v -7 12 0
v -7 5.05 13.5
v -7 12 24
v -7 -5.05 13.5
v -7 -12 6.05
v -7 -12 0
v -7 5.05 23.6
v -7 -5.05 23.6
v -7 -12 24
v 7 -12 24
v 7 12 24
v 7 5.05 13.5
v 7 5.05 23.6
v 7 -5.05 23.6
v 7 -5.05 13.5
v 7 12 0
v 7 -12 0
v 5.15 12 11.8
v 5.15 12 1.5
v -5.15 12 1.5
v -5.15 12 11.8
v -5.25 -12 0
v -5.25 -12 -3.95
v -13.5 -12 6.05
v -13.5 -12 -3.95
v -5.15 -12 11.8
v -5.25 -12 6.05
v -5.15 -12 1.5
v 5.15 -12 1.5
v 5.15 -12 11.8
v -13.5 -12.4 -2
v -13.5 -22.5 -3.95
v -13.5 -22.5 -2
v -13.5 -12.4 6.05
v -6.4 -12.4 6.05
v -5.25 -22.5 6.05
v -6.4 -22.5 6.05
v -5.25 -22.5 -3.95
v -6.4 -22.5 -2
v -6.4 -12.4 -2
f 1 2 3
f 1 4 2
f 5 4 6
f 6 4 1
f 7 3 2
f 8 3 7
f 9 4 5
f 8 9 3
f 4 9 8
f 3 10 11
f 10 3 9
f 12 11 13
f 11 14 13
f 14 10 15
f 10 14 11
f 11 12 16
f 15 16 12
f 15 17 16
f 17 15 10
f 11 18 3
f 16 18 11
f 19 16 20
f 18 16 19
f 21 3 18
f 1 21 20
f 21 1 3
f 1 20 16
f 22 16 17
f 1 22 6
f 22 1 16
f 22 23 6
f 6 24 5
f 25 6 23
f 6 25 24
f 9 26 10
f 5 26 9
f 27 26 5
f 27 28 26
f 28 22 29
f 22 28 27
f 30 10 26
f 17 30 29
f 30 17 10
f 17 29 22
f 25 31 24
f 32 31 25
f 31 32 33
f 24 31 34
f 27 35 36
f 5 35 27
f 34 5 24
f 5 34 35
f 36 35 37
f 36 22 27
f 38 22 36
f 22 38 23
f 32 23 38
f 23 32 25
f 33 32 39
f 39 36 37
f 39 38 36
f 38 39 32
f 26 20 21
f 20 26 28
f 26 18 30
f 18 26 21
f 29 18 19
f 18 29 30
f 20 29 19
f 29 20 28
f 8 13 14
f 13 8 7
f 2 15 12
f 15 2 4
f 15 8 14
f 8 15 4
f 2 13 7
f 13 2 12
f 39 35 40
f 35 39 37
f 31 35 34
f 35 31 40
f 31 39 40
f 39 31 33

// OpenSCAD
/* ==========================================================================
   PROJETO CAMPO TÁTIL - CARRINHO LATERAL Y (METADE DIREITA DE IMPRESSÃO)
   Berço da cremalheira em U totalmente aberto para cima e para a esquerda (centro do campo)
   Pronto para fatiar direto na Bambu Lab A1 Mini (Suporte Zero)
   ========================================================================== */

$fn = 60;

module carrinho_lateral_y_direito() {
    desloc_x_centro_braco = -9.375;
    
    difference() {
        union() {
            // Corpo principal original de 24mm em Y (spans Y = -12 a 12mm)
            translate([0, 0, 12]) 
                cube([14, 24, 24], center=true);
            
            // Prolongador interno com altura estendida para baixo em Z (total 10.0mm de altura)
            // Z de -3.95mm a 6.05mm relativo. Centralizado em Y = -17.25mm
            translate([desloc_x_centro_braco, -17.25, 1.05])
                cube([8.25, 10.5, 10.0], center=true);
                
            // Nervura triangular de reforço em X-Y (Mão-Francesa lateral estendida em Z)
            translate([0, 0, 1.05]) {
                linear_extrude(height = 10.0, center = true) {
                    polygon(points = [
                        [-7.0, -12.0],
                        [-7.0, -17.5],
                        [-13.5, -17.5]
                    ]);
                }
            }
        }
        
        // Canal passante interno para o eixo quadrado Y (10.3mm - Spans X = -5.15 a 5.15)
        translate([0, 0, 1.5 + 10.3/2]) 
            cube([10.3, 26, 10.3], center=true);
            
        // Eixo Único da Ponte X (Y = 0mm)
        translate([0, 0, 13.5 + 10.1/2]) 
            cube([16, 10.1, 10.1], center=true);
        
        // Canal de Encaixe em U Aberto por Cima E Aberto para a Esquerda (Centro do Campo)
        // Corta tudo a partir de X = -6.4mm em direção ao lado esquerdo (-X)
        // Corta de Z = -2.0mm até acima do topo do suporte
        translate([-10.7, -17.5, 3.0])
            cube([8.6, 10.2, 10.0], center=true);
    }
}

// Renderiza a peça pronta para fatiar
carrinho_lateral_y_direito();
